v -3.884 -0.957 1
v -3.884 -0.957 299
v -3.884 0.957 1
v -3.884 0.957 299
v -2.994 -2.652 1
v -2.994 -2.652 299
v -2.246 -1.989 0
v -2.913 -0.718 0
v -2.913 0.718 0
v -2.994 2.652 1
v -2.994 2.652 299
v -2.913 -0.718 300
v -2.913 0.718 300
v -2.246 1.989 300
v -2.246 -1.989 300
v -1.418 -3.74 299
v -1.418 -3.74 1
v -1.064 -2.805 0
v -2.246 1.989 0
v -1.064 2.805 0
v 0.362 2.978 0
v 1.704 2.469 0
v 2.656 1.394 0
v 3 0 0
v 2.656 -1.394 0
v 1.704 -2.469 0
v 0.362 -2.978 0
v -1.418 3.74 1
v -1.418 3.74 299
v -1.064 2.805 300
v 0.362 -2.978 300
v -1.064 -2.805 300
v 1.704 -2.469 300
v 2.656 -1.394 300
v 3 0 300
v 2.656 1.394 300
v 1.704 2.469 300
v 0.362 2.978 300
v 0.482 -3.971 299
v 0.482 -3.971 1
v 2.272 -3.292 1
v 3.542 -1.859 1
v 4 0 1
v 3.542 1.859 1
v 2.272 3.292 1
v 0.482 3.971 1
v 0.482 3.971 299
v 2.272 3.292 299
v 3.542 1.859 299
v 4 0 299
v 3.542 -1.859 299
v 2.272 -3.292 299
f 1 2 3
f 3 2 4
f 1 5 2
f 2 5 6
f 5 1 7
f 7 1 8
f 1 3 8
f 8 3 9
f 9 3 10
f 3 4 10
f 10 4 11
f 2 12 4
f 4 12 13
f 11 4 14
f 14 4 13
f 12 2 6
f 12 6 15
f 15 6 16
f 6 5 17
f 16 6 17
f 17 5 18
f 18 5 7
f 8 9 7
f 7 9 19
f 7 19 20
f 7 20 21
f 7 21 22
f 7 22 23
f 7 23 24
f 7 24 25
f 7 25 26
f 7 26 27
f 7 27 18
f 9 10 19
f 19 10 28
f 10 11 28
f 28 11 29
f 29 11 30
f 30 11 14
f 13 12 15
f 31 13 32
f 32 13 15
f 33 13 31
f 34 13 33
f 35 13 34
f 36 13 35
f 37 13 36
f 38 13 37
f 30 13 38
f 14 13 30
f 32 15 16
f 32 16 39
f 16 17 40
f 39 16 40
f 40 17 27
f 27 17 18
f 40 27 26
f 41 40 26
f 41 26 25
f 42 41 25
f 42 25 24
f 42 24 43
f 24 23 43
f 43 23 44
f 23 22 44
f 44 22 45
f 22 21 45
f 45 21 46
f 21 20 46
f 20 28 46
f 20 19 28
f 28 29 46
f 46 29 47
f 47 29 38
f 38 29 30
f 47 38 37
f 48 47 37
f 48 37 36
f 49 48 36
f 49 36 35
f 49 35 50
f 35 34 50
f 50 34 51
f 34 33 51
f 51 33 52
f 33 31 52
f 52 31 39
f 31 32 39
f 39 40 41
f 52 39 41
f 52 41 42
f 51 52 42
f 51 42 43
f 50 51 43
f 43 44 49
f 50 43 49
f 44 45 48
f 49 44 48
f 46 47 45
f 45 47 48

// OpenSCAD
steel = [0.8, 0.8, 0.9];

module rod(l, r) {
    color(steel) render() union() {
        translate([0, 0, l-1]) cylinder(r1=r, r2=r-1, h=1);
        translate([0, 0, 1]) cylinder(r=r, h=l-2);
        cylinder(r1=r-1, r2=r, h=1);
    }
}

rod(300, 4);
